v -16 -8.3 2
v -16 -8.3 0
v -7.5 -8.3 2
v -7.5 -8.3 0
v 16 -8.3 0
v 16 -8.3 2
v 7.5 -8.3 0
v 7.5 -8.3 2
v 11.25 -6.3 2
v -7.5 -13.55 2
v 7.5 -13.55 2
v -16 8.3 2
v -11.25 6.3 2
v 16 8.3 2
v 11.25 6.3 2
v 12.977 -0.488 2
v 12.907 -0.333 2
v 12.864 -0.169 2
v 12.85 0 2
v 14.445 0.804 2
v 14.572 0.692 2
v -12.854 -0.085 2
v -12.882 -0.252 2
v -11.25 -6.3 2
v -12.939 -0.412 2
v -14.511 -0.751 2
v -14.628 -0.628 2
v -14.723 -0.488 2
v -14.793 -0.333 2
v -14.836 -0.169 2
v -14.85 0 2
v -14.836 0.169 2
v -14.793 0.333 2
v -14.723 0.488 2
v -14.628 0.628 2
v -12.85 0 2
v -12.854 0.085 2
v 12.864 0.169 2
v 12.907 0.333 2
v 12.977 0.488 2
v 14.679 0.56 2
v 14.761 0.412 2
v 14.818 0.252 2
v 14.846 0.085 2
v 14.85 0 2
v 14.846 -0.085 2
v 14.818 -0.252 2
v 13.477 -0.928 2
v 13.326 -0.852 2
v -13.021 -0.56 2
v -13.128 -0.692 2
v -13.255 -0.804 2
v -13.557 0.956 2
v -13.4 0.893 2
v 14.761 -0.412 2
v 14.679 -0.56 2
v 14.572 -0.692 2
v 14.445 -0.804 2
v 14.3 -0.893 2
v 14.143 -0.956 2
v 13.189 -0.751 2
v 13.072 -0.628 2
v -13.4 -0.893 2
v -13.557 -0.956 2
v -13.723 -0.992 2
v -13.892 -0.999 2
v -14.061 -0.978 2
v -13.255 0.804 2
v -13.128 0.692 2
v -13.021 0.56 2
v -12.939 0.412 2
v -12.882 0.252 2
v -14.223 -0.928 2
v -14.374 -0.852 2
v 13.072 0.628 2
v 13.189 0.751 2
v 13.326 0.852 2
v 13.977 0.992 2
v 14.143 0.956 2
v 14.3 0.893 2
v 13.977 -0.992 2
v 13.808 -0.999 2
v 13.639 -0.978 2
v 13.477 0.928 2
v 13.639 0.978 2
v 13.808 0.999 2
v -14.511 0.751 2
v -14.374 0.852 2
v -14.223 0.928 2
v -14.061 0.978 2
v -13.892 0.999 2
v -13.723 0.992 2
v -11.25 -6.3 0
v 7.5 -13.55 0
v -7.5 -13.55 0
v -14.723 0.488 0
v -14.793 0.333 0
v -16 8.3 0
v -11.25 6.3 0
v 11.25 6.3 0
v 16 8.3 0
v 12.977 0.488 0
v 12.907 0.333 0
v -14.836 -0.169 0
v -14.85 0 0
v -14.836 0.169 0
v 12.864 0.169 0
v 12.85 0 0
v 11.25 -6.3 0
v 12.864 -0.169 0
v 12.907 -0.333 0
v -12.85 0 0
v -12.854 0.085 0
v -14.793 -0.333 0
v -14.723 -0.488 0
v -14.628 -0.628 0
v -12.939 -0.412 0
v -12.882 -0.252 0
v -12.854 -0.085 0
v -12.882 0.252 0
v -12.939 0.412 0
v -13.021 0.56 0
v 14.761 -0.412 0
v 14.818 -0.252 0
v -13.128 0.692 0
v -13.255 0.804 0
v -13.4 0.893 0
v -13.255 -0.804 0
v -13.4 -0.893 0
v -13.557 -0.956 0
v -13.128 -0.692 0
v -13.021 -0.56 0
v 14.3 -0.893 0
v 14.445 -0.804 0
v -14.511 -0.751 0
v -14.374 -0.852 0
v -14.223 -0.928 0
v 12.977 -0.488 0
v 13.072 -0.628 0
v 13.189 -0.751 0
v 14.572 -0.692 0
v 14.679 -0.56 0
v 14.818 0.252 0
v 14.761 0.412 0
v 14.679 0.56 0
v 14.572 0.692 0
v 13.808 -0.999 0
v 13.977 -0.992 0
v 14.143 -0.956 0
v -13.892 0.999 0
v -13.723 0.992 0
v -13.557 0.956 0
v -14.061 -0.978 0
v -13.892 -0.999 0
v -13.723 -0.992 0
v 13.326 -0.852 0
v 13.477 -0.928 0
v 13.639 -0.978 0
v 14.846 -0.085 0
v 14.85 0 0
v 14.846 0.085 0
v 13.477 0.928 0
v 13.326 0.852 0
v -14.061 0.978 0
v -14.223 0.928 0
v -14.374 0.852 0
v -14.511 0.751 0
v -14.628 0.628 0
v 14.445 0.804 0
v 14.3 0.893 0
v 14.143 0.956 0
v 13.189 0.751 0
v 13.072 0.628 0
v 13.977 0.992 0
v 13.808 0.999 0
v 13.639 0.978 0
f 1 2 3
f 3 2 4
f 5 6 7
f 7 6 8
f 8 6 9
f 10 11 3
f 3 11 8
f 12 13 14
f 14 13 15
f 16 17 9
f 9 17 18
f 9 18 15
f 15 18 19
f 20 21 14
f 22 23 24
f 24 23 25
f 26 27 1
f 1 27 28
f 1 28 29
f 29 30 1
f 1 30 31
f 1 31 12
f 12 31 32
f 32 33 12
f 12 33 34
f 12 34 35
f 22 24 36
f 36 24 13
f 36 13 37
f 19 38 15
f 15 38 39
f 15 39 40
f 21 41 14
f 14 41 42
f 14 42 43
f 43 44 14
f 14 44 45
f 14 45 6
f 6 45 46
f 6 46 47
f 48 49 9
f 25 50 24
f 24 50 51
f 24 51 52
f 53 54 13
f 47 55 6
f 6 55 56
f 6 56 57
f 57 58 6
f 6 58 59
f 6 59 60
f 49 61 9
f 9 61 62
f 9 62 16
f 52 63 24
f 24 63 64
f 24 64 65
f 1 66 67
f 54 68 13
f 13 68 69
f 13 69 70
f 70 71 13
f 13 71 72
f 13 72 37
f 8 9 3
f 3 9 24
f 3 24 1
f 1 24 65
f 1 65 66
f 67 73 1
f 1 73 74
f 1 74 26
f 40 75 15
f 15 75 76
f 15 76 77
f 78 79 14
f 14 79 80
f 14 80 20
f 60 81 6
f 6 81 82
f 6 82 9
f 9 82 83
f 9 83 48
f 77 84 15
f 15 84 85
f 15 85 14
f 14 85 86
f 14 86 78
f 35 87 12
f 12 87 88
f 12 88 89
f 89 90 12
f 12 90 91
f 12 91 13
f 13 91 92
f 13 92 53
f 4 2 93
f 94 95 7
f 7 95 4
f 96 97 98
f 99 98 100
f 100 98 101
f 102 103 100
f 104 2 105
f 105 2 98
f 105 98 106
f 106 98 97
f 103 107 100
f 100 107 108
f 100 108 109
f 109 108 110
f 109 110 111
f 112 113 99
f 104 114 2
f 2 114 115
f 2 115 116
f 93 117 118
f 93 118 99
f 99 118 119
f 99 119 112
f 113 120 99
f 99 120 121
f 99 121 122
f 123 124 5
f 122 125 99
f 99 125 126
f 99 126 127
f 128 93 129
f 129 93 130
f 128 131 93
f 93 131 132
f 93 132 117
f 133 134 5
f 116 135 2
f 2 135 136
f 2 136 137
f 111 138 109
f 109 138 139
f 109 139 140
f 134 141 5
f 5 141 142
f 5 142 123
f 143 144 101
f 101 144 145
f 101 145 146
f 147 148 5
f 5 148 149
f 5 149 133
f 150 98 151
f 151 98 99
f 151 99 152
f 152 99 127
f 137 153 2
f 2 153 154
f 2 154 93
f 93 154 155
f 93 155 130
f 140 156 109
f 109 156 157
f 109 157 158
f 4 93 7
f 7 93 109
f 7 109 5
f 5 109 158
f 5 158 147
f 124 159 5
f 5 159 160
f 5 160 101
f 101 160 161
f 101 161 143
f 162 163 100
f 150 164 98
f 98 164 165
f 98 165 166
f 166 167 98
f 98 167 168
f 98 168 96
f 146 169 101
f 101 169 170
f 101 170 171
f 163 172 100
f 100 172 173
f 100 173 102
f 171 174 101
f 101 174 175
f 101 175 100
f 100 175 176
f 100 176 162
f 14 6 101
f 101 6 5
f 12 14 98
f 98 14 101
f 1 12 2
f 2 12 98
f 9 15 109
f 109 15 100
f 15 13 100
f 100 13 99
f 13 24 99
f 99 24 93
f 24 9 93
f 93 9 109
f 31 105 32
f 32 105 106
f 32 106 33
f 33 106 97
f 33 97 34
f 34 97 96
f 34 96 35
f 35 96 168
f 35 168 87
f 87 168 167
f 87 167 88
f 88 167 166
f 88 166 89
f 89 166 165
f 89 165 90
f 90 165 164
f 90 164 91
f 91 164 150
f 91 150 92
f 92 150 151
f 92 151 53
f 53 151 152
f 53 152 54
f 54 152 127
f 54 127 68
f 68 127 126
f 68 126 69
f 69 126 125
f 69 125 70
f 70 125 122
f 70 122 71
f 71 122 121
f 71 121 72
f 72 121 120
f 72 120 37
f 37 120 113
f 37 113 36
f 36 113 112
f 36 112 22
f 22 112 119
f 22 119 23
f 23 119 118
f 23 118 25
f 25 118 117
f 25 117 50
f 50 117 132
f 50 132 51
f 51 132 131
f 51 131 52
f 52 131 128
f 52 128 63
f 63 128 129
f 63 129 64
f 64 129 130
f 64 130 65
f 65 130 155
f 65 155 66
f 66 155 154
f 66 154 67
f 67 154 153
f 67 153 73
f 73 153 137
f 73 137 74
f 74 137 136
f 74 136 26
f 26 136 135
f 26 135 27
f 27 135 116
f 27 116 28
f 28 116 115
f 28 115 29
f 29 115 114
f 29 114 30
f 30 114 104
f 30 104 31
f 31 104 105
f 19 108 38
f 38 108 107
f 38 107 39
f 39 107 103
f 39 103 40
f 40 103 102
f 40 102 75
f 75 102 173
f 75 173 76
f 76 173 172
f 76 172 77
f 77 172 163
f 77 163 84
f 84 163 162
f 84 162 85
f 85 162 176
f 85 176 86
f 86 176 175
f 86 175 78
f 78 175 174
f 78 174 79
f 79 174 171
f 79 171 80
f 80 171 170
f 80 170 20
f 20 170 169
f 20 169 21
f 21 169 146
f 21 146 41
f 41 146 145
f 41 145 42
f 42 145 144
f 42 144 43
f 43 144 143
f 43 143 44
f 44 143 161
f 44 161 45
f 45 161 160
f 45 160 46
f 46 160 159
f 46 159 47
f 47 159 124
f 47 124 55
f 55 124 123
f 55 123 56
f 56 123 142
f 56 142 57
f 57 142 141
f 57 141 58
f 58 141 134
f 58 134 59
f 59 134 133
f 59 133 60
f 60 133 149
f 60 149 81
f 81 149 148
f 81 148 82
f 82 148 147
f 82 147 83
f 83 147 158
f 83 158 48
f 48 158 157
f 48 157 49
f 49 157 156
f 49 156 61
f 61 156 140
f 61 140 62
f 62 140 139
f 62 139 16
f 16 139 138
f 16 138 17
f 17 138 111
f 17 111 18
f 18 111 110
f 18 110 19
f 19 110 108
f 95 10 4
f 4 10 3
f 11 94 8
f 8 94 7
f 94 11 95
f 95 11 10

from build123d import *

# Parameters (mm, degrees)
SKETCH1_W           = 32
SKETCH1_H           = 16.6
SKETCH1_R           = 1
SKETCH1_W_2         = 22.5
SKETCH1_H_2         = 12.6
BOSS_EXTRUDE1_DEPTH = 2
SKETCH2_W           = 15
SKETCH2_H           = 2
BOSS_EXTRUDE2_DEPTH = 5.25


with BuildPart() as part:
    # Sketch1 → Boss-Extrude1 (new body)
    with BuildSketch(Plane.XY):
        Rectangle(SKETCH1_W, SKETCH1_H)
        with Locations((-13.85, 0)):
            Circle(SKETCH1_R, mode=Mode.SUBTRACT)
        with Locations((13.85, 0)):
            Circle(SKETCH1_R, mode=Mode.SUBTRACT)
        Rectangle(SKETCH1_W_2, SKETCH1_H_2, mode=Mode.SUBTRACT)
    extrude(amount=BOSS_EXTRUDE1_DEPTH)

    # Sketch2 → Boss-Extrude2 (add)
    with BuildSketch(Plane.XZ.offset(8.3)):
        with Locations((0, 1)):
            Rectangle(SKETCH2_W, SKETCH2_H)
    extrude(amount=BOSS_EXTRUDE2_DEPTH)


solid = part.part
